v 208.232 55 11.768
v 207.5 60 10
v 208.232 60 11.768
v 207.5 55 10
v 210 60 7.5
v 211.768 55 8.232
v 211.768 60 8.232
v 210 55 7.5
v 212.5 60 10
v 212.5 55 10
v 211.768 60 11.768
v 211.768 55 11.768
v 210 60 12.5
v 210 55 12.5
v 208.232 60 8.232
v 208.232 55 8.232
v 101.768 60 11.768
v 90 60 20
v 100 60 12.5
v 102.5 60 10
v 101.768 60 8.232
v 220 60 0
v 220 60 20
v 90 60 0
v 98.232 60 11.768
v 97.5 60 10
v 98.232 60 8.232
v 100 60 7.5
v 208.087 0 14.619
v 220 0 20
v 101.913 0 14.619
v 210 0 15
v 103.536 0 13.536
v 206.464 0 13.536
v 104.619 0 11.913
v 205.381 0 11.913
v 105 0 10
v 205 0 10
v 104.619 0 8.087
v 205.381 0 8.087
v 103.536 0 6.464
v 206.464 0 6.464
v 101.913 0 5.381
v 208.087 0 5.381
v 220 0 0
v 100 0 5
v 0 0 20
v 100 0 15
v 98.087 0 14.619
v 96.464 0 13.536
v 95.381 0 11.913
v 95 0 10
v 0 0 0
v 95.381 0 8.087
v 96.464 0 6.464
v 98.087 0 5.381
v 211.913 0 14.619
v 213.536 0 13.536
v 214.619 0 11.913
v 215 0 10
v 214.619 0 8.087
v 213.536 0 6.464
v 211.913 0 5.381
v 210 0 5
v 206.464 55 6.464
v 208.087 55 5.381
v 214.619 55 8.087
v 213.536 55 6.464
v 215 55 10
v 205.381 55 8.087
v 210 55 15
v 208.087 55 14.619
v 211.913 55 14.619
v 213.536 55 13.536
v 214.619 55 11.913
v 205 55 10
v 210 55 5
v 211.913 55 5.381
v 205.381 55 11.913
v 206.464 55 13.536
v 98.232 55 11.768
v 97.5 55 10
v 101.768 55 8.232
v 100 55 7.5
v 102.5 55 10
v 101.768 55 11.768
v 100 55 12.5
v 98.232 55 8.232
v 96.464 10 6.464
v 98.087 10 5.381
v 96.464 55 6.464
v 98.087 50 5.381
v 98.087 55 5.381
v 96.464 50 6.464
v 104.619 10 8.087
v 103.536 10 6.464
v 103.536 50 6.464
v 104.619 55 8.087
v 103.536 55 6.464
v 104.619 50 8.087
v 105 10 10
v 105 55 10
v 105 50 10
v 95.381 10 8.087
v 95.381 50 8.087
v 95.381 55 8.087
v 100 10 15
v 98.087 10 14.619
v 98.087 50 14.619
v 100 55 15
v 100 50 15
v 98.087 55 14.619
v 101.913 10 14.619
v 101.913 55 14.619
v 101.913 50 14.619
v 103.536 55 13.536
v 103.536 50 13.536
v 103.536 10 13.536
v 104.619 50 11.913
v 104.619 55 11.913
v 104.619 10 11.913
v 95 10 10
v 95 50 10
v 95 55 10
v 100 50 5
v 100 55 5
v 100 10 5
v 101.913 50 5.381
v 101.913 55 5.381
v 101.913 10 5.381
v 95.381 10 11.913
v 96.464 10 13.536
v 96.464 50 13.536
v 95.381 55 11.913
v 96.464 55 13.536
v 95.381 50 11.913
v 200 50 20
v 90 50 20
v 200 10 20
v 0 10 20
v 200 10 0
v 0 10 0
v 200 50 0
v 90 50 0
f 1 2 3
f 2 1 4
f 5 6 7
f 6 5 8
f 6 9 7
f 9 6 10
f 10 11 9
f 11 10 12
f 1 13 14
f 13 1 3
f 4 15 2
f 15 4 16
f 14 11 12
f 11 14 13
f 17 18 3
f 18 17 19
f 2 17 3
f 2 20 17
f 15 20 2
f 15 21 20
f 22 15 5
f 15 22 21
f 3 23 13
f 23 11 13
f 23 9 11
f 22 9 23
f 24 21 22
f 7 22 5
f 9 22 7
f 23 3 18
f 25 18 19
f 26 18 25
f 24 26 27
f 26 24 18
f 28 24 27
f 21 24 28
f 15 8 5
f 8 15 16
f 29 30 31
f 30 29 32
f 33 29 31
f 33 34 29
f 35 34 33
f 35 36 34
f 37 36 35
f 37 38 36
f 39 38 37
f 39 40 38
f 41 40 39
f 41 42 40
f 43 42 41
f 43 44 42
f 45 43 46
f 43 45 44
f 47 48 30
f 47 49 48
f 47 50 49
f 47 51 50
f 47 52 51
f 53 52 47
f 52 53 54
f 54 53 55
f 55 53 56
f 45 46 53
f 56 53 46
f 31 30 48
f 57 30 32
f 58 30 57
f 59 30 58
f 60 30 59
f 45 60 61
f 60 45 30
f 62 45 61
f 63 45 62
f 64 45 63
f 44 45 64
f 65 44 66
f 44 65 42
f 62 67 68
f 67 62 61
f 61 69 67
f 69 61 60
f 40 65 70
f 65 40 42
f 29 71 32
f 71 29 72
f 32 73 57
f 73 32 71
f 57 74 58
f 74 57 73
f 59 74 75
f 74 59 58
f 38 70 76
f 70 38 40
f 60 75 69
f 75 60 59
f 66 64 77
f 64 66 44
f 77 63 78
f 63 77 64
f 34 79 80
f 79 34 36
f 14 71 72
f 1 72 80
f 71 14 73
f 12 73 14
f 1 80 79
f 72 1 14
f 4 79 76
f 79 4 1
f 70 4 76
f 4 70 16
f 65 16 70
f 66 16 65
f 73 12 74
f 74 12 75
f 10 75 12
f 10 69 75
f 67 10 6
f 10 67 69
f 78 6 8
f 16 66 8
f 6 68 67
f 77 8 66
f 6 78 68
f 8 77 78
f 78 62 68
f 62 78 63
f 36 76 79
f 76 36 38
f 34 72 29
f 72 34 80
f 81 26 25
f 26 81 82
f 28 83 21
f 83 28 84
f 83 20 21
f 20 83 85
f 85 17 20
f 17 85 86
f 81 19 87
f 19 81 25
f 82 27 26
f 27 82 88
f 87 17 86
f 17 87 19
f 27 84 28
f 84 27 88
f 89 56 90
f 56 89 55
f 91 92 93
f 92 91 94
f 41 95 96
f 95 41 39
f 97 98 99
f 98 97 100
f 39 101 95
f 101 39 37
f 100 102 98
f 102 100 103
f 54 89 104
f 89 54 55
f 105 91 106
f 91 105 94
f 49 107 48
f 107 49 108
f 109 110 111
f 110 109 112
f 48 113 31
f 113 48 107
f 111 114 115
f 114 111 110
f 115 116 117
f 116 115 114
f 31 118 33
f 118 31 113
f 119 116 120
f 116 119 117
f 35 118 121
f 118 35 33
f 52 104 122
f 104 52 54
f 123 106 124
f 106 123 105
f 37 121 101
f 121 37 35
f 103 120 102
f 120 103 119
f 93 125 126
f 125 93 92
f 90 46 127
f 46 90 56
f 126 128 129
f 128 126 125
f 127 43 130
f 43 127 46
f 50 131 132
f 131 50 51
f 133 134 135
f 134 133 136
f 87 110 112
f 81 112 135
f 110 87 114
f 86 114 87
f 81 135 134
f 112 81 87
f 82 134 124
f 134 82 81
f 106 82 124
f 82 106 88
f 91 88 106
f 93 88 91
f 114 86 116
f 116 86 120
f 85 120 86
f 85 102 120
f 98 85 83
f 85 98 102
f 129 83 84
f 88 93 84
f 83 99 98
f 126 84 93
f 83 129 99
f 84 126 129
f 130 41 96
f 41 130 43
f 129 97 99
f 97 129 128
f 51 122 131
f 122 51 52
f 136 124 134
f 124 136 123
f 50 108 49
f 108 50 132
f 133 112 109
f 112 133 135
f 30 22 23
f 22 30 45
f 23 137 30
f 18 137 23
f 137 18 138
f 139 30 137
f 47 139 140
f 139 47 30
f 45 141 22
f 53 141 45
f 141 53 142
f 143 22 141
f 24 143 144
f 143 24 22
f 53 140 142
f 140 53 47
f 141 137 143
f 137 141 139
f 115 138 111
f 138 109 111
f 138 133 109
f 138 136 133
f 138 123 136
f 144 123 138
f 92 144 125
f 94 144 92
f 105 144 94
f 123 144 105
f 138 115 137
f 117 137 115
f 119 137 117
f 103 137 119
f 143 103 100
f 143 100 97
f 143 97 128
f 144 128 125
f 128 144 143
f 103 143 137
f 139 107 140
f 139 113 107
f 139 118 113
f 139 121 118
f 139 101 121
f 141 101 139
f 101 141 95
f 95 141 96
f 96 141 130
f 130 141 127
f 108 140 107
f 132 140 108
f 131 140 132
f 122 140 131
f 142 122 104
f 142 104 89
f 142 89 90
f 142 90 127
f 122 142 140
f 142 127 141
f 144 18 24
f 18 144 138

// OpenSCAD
winglen=200;
wingdep=40;
ZZ=20;
dd=10;

module main() {
    difference() {
        cube([winglen+dd*2,wingdep+dd*2,ZZ]);
        translate([0,dd,0]) cube([winglen,wingdep,ZZ]);
        translate([winglen+dd,0,ZZ/2]) screwhole();
        translate([winglen/2,0,ZZ/2]) screwhole();
        # translate([-winglen/2-30,dd,0]) cube([winglen+dd*2,wingdep+dd*2,ZZ]);


}   }
 
module screwhole() {
    rotate([-90,0,0]) cylinder(wingdep+2*dd,d=5);
    rotate([-90,0,0]) cylinder(wingdep+2*dd-5,d=10);
}

main();
